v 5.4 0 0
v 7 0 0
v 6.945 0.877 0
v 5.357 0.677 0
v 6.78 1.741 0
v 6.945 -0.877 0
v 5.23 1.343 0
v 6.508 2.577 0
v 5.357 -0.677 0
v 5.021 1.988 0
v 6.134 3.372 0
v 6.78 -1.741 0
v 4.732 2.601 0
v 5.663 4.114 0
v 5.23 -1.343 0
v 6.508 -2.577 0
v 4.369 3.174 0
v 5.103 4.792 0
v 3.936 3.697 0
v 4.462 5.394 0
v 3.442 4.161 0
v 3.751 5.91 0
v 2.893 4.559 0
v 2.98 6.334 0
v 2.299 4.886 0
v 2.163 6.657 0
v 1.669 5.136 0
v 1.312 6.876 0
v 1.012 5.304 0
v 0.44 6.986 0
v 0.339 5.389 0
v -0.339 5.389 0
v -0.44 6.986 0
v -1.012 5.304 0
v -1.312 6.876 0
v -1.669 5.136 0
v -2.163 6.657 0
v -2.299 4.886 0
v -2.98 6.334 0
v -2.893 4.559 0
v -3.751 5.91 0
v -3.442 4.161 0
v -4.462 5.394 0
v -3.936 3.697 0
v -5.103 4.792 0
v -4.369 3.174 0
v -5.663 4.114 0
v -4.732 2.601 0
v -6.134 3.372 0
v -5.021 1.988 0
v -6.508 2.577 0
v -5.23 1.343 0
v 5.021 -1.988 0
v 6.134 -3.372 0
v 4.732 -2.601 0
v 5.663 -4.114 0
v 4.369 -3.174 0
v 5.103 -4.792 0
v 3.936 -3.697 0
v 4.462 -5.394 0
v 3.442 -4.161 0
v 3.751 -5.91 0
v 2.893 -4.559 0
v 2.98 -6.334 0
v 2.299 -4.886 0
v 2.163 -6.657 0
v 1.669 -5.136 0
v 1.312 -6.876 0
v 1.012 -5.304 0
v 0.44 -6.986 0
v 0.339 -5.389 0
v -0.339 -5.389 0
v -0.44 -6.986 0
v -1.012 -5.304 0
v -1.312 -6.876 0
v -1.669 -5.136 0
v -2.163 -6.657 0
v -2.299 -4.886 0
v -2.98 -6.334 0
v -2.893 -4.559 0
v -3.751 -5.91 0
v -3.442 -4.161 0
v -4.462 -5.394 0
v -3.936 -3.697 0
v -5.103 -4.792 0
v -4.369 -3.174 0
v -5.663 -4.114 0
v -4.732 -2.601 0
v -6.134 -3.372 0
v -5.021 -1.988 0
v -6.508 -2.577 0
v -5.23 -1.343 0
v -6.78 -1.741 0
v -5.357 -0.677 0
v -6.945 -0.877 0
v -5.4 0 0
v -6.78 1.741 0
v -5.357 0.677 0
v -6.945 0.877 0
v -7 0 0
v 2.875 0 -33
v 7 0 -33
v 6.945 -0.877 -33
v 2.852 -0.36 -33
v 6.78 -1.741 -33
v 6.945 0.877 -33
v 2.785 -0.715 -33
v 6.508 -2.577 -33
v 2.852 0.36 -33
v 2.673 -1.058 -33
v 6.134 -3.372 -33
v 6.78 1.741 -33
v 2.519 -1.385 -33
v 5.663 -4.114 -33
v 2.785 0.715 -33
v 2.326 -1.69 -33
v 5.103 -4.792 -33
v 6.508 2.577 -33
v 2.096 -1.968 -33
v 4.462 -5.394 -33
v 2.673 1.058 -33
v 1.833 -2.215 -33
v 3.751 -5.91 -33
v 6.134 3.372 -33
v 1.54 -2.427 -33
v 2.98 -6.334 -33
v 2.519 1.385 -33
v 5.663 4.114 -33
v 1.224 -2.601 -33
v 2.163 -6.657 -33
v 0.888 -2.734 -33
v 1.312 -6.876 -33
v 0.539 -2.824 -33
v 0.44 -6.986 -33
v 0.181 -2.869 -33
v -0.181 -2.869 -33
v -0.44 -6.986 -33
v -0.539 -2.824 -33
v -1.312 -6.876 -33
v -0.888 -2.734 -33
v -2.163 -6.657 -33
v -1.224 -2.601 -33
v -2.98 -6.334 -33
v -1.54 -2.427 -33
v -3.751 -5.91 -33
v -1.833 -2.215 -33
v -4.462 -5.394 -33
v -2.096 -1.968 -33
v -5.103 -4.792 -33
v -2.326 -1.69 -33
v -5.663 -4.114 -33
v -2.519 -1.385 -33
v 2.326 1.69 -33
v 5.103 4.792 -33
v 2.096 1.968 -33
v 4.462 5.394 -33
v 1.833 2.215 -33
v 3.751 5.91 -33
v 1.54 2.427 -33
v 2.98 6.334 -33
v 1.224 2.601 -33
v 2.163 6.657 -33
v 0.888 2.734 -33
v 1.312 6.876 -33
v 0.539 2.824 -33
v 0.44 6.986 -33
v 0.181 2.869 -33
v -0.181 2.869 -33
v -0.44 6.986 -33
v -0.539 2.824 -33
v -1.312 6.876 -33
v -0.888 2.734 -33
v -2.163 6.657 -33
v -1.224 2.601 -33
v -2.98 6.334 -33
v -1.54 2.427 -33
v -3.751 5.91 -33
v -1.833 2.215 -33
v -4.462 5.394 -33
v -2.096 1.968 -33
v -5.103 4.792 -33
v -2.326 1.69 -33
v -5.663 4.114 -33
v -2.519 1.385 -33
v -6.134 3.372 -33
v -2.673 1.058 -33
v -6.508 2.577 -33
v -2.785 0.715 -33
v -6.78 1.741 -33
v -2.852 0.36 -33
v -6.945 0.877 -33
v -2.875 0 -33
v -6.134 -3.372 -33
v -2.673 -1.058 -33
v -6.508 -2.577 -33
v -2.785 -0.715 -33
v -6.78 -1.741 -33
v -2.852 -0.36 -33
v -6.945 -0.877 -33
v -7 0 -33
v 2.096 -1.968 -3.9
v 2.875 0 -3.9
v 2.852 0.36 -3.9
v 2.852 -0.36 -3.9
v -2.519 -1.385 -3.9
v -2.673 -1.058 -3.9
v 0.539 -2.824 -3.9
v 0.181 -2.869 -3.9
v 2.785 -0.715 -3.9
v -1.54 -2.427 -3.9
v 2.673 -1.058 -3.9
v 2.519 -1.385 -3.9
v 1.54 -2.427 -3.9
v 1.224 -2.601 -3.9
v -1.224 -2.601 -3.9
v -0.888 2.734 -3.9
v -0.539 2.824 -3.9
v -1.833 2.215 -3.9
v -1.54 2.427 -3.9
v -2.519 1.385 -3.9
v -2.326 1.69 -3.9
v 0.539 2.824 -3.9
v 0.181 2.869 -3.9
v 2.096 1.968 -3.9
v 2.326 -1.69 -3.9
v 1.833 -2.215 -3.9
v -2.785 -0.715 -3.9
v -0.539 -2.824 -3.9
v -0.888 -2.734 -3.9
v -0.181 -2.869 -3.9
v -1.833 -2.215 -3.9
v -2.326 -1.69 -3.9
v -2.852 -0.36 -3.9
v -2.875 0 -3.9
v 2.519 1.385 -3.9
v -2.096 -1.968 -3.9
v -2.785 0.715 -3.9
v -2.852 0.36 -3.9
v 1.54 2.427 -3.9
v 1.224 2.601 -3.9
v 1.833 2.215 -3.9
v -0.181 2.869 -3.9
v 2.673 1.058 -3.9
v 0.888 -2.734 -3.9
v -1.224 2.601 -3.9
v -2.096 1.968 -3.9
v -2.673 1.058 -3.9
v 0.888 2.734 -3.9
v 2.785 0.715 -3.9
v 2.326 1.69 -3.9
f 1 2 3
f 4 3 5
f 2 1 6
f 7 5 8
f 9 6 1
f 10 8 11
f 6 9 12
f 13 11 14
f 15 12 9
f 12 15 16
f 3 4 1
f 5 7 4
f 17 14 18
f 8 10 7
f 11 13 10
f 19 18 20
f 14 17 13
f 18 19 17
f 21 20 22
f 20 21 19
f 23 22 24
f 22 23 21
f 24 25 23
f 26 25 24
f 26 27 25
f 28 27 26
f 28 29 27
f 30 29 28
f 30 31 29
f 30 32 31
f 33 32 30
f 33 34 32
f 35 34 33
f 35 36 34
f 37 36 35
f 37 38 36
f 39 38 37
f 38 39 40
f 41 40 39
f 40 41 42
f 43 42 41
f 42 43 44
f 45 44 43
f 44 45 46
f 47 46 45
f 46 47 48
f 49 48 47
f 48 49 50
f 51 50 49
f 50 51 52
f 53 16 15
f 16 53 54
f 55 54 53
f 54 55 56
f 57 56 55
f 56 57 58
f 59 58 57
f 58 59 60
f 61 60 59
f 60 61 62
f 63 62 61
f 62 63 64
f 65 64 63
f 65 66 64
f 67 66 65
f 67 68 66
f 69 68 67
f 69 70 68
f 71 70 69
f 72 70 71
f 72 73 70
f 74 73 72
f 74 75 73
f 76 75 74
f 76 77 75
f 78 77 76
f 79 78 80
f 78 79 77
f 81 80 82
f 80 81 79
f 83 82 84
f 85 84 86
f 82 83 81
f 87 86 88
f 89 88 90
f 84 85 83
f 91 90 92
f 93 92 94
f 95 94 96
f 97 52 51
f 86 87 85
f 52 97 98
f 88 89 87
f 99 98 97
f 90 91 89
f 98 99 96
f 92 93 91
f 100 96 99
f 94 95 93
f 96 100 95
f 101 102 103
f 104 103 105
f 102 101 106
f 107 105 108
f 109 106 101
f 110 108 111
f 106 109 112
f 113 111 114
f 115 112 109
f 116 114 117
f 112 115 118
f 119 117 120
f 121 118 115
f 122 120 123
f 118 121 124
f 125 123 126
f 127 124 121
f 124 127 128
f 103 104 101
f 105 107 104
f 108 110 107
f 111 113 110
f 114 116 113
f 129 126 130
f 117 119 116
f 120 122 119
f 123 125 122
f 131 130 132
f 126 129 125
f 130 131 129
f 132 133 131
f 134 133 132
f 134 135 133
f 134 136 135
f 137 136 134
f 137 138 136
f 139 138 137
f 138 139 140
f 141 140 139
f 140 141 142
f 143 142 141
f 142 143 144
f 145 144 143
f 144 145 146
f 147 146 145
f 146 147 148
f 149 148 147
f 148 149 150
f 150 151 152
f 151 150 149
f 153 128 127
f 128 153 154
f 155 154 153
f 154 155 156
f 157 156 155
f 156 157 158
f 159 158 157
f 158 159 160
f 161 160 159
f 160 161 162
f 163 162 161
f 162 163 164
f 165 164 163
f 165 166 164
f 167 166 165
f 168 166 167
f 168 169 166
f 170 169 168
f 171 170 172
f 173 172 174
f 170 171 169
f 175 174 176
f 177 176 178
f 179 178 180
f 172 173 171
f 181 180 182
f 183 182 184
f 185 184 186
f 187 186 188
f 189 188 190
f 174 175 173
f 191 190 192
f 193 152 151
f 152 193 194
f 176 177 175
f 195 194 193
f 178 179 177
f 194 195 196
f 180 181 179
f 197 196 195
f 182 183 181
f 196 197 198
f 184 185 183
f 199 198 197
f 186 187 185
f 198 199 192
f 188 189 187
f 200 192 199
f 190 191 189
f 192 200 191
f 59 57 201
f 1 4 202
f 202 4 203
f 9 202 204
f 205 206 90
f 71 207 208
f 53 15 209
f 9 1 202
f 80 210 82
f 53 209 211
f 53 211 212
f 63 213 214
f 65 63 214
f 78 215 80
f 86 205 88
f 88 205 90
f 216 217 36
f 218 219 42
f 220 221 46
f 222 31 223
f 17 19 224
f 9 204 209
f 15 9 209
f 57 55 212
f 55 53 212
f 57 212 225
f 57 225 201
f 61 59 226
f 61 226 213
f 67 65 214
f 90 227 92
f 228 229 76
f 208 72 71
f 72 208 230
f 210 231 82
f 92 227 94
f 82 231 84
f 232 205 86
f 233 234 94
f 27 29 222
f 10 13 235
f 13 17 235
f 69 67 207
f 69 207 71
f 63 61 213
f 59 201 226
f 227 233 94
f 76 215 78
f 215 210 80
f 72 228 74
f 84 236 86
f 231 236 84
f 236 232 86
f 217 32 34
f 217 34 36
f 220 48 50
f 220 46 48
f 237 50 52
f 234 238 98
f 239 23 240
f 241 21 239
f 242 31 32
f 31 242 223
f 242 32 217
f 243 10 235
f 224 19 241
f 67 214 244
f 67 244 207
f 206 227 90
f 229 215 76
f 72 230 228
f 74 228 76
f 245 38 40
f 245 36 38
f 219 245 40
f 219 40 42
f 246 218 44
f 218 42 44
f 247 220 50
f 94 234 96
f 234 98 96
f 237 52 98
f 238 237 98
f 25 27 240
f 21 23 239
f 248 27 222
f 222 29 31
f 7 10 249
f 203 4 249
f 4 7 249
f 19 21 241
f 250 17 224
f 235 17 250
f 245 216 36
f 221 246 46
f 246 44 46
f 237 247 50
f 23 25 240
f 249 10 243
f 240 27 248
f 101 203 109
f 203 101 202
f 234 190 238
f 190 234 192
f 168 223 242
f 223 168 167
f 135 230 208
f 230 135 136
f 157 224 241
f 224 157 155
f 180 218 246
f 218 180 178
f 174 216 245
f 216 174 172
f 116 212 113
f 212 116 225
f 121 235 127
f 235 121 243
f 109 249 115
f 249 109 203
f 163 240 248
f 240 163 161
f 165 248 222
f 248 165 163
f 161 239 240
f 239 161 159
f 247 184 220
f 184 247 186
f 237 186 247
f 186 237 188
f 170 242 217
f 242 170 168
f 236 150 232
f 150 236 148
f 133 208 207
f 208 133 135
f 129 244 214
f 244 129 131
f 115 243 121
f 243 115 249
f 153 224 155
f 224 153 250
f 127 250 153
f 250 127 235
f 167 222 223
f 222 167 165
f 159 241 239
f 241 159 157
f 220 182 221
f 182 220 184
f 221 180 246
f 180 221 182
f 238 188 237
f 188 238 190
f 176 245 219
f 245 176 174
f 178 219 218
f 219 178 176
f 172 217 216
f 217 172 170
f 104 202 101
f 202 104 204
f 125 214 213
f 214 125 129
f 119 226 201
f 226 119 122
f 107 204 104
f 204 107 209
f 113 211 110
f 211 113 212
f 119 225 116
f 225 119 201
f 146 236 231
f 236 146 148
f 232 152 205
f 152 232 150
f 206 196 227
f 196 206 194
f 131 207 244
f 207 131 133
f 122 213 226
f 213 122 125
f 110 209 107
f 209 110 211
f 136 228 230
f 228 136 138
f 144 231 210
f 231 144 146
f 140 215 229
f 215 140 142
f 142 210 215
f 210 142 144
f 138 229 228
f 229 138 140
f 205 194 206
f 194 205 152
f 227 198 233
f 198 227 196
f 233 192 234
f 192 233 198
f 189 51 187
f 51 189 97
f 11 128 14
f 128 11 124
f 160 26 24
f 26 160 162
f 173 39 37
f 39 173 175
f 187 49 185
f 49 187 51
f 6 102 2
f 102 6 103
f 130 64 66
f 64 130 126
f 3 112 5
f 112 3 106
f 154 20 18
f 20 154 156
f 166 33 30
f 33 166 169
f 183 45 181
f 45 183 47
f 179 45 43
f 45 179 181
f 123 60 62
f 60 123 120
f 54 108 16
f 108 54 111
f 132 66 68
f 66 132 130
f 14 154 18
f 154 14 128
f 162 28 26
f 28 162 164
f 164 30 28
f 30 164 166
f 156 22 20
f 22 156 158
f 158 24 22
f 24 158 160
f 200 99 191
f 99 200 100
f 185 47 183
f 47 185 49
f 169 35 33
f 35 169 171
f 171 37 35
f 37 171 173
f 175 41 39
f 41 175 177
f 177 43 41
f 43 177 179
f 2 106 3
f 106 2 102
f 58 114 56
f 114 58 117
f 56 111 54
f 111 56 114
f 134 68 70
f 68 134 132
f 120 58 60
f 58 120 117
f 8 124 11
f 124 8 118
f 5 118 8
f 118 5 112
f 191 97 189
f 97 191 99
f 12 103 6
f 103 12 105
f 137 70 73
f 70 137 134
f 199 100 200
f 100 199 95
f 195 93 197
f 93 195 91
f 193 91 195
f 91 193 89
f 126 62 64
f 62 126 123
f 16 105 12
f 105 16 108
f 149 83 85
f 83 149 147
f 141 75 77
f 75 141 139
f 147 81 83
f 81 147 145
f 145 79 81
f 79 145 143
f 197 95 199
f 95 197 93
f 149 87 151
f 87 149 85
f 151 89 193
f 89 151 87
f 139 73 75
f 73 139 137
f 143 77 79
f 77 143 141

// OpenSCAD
$fn = 50;


difference() {
	union() {
		translate(v = [0, 0, -33.0000000000]) {
			cylinder(h = 33, r = 7.0000000000);
		}
		cylinder(h = 0, r = 13.0000000000);
	}
	union() {
		translate(v = [0, 0, 0]) {
			rotate(a = [0, 0, 0]) {
				difference() {
					union() {
						#translate(v = [0, 0, -33.0000000000]) {
							cylinder(h = 33, r = 2.6000000000);
						}
						#translate(v = [0, 0, -3.9000000000]) {
							cylinder(h = 3.9000000000, r1 = 2.8750000000, r2 = 5.4000000000);
						}
						#translate(v = [0, 0, -33.0000000000]) {
							cylinder(h = 33, r = 2.8750000000);
						}
						#translate(v = [0, 0, -33.0000000000]) {
							cylinder(h = 33, r = 2.6000000000);
						}
					}
					union();
				}
			}
		}
	}
}
